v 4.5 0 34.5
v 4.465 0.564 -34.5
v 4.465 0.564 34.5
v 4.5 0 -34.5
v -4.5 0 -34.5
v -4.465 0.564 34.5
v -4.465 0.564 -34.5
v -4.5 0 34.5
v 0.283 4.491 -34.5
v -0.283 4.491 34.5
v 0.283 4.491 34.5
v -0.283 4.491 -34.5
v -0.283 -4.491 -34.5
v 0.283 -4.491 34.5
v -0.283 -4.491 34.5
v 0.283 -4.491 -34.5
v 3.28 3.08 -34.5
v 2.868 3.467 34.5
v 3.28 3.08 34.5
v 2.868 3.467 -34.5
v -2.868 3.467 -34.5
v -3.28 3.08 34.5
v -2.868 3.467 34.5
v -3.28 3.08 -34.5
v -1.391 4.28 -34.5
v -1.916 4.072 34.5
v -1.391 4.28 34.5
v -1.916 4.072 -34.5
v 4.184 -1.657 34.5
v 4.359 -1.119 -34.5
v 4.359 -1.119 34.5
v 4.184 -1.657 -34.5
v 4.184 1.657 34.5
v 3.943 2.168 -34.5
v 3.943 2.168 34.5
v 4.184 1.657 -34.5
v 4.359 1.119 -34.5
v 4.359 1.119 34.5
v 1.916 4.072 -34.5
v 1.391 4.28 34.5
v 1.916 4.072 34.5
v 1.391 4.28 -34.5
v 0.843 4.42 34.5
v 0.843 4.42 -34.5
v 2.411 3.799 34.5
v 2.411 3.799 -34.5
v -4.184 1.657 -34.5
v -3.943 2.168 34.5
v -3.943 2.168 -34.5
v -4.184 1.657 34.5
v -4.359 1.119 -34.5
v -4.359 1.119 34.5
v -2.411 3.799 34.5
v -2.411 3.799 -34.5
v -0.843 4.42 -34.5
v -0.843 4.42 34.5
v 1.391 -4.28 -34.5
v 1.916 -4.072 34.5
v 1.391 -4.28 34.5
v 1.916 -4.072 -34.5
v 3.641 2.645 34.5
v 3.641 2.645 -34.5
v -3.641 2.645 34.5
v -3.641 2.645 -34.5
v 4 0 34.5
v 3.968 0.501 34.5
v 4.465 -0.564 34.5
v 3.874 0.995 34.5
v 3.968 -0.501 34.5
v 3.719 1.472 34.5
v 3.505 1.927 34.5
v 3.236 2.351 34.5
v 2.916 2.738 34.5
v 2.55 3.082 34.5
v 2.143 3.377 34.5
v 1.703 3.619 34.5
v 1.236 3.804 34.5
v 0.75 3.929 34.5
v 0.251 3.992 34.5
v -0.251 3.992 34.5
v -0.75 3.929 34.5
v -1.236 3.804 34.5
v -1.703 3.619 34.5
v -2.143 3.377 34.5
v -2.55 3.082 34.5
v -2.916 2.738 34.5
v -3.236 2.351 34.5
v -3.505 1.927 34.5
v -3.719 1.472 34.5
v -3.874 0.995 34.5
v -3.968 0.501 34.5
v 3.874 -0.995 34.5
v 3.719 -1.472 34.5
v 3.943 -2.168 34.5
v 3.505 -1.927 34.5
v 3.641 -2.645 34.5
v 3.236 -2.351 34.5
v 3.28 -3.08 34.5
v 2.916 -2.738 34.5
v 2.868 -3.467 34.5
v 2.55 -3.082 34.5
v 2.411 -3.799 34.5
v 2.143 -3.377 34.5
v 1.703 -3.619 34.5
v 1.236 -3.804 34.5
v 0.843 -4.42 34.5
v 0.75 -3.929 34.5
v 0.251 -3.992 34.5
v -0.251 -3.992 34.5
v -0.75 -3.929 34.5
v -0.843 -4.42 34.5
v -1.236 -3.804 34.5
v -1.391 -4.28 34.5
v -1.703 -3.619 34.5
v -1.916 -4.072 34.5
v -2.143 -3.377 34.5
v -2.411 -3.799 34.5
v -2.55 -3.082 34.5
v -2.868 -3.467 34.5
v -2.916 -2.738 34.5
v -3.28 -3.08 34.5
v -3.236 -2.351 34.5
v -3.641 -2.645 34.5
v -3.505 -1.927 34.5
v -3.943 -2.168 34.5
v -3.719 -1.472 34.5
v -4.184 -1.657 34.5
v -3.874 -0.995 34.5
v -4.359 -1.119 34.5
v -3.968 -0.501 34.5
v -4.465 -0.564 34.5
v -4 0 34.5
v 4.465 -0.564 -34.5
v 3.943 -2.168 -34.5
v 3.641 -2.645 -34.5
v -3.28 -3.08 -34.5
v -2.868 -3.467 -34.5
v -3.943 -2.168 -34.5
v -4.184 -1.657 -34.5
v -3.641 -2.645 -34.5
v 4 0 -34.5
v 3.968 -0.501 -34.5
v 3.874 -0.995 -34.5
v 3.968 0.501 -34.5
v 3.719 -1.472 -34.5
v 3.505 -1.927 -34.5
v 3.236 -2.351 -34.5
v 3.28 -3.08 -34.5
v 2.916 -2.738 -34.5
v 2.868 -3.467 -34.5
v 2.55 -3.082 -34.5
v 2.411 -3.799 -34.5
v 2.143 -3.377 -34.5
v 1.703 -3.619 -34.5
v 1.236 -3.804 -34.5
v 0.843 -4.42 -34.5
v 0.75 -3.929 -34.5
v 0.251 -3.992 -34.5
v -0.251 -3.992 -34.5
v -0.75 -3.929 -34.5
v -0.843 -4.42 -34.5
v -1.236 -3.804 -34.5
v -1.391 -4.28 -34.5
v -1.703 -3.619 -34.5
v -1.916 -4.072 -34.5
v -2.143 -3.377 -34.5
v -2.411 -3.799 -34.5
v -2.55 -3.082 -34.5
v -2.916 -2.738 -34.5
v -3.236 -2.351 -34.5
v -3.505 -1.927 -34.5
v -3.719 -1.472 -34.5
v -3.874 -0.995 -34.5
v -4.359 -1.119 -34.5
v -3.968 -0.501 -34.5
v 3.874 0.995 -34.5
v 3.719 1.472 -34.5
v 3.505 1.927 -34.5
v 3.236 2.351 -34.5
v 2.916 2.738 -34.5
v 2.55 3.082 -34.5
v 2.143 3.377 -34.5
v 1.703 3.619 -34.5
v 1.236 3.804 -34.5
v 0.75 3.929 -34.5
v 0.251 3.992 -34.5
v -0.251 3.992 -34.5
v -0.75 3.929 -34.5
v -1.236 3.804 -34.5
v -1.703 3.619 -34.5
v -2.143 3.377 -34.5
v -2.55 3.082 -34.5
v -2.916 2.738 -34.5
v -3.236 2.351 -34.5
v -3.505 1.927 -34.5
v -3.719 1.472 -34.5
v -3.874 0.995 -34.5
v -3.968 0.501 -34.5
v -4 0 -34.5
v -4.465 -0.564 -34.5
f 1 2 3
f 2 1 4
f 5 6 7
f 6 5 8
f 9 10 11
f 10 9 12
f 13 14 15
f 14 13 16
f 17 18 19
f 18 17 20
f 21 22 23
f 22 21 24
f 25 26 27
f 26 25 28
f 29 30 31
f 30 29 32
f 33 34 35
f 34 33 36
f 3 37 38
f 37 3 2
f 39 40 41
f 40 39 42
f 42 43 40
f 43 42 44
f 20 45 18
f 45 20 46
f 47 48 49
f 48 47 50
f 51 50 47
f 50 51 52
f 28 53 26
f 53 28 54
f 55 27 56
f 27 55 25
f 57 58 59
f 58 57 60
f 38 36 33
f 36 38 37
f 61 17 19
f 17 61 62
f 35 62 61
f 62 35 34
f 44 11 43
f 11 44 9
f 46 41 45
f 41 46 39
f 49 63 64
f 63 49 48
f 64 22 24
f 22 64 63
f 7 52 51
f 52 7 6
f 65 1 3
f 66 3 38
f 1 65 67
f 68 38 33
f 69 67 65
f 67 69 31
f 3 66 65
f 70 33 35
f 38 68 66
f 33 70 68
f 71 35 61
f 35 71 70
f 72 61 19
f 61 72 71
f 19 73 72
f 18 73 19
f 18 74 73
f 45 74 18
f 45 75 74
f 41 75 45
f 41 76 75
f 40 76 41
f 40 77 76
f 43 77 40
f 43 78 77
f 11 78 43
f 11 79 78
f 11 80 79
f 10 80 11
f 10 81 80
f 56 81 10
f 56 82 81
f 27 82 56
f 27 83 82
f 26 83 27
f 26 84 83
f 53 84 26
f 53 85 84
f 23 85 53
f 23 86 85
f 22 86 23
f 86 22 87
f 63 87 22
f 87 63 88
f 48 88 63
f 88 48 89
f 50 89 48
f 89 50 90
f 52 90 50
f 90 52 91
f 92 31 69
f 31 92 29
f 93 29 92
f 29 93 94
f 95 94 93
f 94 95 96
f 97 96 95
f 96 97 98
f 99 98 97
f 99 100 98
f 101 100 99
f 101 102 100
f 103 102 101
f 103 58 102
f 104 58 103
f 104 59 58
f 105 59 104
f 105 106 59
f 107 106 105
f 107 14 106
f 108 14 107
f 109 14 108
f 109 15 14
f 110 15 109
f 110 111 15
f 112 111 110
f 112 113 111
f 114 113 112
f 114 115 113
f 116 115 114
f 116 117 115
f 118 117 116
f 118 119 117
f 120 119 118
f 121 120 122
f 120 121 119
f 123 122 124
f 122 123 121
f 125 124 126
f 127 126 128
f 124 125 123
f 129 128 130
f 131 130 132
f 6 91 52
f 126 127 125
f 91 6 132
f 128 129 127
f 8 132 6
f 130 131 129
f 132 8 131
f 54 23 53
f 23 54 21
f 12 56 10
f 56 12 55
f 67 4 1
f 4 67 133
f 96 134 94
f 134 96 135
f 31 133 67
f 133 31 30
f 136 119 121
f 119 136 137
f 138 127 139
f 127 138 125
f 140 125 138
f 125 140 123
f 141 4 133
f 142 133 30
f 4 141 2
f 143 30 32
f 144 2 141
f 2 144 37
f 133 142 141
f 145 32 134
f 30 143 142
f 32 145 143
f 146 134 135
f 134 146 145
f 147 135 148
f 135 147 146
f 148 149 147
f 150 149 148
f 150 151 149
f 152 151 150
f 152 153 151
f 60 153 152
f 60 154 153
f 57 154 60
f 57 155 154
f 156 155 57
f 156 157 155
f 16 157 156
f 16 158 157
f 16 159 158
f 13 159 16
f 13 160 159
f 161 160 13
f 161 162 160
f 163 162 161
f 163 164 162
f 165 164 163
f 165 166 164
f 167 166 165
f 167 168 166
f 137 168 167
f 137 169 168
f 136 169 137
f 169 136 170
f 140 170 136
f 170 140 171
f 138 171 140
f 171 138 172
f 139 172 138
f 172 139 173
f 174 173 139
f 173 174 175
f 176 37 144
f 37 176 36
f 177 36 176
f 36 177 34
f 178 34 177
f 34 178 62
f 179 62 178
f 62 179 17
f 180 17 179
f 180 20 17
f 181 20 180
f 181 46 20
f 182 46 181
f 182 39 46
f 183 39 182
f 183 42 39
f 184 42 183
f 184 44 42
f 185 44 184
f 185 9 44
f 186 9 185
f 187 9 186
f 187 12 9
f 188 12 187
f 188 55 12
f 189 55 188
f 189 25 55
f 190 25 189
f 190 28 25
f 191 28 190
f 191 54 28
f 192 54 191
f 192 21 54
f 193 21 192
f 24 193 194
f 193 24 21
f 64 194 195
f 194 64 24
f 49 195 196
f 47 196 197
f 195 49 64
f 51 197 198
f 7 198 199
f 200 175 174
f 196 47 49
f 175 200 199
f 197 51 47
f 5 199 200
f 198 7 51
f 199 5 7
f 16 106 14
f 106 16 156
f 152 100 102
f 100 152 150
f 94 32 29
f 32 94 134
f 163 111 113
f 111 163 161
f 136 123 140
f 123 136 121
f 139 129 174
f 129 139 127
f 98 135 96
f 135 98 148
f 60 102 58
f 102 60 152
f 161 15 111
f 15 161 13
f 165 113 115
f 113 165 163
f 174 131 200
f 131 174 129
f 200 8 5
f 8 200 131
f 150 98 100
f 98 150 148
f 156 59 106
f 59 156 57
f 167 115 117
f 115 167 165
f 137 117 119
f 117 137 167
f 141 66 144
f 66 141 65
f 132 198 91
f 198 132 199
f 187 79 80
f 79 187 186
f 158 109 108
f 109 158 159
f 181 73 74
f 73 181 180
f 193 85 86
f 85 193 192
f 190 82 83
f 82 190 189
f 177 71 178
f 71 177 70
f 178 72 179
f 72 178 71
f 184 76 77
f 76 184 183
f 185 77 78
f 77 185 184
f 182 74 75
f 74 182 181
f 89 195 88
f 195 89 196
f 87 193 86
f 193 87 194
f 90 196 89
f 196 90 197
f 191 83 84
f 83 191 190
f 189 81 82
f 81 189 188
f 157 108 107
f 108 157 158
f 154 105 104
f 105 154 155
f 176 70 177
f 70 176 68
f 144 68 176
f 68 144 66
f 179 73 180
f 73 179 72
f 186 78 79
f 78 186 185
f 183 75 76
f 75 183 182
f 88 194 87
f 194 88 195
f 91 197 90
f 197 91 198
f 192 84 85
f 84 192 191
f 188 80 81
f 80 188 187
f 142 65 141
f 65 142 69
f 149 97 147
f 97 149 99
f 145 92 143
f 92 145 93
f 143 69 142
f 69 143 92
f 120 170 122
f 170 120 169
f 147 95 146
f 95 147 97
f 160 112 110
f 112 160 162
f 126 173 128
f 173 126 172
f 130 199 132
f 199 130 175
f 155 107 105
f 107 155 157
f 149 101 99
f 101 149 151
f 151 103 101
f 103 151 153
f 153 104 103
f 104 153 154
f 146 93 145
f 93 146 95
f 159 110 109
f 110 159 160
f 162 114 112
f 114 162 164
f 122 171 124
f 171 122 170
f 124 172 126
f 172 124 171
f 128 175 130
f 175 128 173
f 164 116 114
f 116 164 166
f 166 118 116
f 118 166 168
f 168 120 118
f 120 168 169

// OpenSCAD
$fn = 50;


difference() {
	union() {
		translate(v = [0, 0, -34.5000000000]) {
			cylinder(h = 69, r = 4.5000000000);
		}
	}
	union() {
		translate(v = [0, 0, -100.0000000000]) {
			cylinder(h = 200, r = 4);
		}
	}
}
